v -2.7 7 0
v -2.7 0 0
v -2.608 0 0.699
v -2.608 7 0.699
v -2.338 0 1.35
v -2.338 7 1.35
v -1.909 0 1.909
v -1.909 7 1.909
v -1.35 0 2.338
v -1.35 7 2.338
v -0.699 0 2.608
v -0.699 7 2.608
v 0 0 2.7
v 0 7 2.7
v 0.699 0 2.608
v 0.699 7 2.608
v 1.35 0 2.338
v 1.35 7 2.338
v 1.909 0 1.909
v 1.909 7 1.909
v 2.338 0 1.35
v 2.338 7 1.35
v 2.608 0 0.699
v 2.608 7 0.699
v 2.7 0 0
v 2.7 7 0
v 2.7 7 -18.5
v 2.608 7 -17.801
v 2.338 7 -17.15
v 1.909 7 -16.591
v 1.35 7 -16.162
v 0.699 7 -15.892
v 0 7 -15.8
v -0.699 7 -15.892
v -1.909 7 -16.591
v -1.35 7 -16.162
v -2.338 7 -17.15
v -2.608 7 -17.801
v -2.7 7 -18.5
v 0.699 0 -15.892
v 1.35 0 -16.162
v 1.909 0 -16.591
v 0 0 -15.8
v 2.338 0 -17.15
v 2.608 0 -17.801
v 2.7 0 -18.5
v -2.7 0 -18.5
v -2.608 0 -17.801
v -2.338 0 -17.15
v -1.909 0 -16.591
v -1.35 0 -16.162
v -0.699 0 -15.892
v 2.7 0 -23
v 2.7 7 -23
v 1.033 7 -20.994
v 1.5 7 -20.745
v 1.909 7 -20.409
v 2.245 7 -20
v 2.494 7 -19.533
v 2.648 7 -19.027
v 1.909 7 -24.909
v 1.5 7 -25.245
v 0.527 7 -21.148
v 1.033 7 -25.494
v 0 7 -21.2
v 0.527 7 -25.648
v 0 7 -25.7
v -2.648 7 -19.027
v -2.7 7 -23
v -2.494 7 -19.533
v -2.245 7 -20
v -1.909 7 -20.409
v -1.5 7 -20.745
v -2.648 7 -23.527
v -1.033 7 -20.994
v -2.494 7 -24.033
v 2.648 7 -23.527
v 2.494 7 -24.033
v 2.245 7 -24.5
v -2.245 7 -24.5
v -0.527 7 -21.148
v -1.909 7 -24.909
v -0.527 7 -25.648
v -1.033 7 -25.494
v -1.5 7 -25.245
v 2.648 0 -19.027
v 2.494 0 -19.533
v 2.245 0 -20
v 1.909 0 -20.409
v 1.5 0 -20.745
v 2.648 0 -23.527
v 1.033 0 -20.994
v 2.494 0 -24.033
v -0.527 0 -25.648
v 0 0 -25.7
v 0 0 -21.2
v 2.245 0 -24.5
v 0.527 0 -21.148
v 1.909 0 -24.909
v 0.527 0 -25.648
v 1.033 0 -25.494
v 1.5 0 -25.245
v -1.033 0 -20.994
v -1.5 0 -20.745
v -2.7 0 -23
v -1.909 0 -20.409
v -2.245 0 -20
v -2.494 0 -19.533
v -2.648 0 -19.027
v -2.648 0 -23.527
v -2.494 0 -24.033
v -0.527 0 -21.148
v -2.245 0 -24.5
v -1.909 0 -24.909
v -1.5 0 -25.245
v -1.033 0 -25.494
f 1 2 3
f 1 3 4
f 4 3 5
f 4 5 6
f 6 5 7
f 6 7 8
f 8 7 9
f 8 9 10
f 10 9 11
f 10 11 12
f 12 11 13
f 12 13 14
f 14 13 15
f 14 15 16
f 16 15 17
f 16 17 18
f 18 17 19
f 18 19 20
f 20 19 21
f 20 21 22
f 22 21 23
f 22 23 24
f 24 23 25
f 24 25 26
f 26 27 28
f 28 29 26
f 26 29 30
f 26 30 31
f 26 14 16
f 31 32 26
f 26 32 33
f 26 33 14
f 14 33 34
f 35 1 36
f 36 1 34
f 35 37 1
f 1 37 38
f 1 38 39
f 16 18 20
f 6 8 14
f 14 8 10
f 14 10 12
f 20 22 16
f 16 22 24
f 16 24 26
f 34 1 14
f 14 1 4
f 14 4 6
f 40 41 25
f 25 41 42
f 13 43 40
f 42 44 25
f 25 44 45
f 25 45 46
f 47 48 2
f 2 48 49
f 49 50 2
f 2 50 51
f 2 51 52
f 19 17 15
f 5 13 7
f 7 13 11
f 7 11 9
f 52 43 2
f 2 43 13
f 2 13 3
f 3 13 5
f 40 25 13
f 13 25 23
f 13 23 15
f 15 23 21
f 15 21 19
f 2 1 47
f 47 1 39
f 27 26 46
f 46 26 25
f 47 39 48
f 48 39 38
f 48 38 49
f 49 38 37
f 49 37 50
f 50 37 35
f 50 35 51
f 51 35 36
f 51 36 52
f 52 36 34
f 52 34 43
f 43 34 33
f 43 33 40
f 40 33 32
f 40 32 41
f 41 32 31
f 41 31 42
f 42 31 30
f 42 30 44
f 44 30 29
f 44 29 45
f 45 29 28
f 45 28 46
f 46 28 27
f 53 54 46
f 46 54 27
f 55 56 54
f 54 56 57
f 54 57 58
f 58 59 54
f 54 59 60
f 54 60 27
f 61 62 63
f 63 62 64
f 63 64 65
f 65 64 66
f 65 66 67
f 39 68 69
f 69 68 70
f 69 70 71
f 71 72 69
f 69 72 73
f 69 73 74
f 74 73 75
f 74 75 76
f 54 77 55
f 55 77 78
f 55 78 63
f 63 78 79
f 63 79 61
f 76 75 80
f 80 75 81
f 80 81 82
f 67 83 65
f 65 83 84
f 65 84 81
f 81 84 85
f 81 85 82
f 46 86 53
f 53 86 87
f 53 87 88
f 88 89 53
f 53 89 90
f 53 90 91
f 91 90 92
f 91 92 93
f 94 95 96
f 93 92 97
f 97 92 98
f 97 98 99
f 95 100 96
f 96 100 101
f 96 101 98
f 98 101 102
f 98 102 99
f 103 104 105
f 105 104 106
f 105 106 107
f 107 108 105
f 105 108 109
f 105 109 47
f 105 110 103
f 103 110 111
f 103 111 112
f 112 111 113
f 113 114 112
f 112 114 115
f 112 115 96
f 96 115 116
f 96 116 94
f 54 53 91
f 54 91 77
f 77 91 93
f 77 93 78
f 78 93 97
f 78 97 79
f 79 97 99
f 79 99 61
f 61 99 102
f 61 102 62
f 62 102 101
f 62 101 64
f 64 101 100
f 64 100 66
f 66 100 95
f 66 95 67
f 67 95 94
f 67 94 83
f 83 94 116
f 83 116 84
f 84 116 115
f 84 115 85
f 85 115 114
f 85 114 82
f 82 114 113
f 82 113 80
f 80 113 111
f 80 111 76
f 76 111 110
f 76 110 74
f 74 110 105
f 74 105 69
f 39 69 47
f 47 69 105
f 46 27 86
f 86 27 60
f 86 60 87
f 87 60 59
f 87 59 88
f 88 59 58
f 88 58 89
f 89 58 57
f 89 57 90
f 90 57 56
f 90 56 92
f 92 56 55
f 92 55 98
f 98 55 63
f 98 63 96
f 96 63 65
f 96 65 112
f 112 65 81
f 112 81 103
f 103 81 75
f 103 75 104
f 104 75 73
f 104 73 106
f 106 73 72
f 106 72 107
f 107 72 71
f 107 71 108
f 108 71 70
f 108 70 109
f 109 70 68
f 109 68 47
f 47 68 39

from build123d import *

# Parameters (mm, degrees)
BOSS_EXTRUDE1_DEPTH = 7
SKETCH2_R           = 2.7
CUT_EXTRUDE1_DEPTH  = 7


with BuildPart() as part:
    # Sketch1 → Boss-Extrude1 (new body)
    with BuildSketch(Plane(origin=(0, 0, 0), x_dir=(1, 0, 0), z_dir=(0, 1, 0))):
        with BuildLine():
            Line((-2.7, 0), (-2.7, 23))
            ThreePointArc((-2.7, 23), (0, 25.7), (2.7, 23))
            Line((2.7, 23), (2.7, 0))
            ThreePointArc((2.7, 0), (0, -2.7), (-2.7, 0))
        make_face()
    extrude(amount=BOSS_EXTRUDE1_DEPTH)

    # Sketch2 → Cut-Extrude1 (cut)
    with BuildSketch(Plane(origin=(0, 7, 0), x_dir=(1, 0, 0), z_dir=(0, 1, 0))):
        with Locations((0, 18.5)):
            Circle(SKETCH2_R)
    extrude(amount=-CUT_EXTRUDE1_DEPTH, mode=Mode.SUBTRACT)


solid = part.part
